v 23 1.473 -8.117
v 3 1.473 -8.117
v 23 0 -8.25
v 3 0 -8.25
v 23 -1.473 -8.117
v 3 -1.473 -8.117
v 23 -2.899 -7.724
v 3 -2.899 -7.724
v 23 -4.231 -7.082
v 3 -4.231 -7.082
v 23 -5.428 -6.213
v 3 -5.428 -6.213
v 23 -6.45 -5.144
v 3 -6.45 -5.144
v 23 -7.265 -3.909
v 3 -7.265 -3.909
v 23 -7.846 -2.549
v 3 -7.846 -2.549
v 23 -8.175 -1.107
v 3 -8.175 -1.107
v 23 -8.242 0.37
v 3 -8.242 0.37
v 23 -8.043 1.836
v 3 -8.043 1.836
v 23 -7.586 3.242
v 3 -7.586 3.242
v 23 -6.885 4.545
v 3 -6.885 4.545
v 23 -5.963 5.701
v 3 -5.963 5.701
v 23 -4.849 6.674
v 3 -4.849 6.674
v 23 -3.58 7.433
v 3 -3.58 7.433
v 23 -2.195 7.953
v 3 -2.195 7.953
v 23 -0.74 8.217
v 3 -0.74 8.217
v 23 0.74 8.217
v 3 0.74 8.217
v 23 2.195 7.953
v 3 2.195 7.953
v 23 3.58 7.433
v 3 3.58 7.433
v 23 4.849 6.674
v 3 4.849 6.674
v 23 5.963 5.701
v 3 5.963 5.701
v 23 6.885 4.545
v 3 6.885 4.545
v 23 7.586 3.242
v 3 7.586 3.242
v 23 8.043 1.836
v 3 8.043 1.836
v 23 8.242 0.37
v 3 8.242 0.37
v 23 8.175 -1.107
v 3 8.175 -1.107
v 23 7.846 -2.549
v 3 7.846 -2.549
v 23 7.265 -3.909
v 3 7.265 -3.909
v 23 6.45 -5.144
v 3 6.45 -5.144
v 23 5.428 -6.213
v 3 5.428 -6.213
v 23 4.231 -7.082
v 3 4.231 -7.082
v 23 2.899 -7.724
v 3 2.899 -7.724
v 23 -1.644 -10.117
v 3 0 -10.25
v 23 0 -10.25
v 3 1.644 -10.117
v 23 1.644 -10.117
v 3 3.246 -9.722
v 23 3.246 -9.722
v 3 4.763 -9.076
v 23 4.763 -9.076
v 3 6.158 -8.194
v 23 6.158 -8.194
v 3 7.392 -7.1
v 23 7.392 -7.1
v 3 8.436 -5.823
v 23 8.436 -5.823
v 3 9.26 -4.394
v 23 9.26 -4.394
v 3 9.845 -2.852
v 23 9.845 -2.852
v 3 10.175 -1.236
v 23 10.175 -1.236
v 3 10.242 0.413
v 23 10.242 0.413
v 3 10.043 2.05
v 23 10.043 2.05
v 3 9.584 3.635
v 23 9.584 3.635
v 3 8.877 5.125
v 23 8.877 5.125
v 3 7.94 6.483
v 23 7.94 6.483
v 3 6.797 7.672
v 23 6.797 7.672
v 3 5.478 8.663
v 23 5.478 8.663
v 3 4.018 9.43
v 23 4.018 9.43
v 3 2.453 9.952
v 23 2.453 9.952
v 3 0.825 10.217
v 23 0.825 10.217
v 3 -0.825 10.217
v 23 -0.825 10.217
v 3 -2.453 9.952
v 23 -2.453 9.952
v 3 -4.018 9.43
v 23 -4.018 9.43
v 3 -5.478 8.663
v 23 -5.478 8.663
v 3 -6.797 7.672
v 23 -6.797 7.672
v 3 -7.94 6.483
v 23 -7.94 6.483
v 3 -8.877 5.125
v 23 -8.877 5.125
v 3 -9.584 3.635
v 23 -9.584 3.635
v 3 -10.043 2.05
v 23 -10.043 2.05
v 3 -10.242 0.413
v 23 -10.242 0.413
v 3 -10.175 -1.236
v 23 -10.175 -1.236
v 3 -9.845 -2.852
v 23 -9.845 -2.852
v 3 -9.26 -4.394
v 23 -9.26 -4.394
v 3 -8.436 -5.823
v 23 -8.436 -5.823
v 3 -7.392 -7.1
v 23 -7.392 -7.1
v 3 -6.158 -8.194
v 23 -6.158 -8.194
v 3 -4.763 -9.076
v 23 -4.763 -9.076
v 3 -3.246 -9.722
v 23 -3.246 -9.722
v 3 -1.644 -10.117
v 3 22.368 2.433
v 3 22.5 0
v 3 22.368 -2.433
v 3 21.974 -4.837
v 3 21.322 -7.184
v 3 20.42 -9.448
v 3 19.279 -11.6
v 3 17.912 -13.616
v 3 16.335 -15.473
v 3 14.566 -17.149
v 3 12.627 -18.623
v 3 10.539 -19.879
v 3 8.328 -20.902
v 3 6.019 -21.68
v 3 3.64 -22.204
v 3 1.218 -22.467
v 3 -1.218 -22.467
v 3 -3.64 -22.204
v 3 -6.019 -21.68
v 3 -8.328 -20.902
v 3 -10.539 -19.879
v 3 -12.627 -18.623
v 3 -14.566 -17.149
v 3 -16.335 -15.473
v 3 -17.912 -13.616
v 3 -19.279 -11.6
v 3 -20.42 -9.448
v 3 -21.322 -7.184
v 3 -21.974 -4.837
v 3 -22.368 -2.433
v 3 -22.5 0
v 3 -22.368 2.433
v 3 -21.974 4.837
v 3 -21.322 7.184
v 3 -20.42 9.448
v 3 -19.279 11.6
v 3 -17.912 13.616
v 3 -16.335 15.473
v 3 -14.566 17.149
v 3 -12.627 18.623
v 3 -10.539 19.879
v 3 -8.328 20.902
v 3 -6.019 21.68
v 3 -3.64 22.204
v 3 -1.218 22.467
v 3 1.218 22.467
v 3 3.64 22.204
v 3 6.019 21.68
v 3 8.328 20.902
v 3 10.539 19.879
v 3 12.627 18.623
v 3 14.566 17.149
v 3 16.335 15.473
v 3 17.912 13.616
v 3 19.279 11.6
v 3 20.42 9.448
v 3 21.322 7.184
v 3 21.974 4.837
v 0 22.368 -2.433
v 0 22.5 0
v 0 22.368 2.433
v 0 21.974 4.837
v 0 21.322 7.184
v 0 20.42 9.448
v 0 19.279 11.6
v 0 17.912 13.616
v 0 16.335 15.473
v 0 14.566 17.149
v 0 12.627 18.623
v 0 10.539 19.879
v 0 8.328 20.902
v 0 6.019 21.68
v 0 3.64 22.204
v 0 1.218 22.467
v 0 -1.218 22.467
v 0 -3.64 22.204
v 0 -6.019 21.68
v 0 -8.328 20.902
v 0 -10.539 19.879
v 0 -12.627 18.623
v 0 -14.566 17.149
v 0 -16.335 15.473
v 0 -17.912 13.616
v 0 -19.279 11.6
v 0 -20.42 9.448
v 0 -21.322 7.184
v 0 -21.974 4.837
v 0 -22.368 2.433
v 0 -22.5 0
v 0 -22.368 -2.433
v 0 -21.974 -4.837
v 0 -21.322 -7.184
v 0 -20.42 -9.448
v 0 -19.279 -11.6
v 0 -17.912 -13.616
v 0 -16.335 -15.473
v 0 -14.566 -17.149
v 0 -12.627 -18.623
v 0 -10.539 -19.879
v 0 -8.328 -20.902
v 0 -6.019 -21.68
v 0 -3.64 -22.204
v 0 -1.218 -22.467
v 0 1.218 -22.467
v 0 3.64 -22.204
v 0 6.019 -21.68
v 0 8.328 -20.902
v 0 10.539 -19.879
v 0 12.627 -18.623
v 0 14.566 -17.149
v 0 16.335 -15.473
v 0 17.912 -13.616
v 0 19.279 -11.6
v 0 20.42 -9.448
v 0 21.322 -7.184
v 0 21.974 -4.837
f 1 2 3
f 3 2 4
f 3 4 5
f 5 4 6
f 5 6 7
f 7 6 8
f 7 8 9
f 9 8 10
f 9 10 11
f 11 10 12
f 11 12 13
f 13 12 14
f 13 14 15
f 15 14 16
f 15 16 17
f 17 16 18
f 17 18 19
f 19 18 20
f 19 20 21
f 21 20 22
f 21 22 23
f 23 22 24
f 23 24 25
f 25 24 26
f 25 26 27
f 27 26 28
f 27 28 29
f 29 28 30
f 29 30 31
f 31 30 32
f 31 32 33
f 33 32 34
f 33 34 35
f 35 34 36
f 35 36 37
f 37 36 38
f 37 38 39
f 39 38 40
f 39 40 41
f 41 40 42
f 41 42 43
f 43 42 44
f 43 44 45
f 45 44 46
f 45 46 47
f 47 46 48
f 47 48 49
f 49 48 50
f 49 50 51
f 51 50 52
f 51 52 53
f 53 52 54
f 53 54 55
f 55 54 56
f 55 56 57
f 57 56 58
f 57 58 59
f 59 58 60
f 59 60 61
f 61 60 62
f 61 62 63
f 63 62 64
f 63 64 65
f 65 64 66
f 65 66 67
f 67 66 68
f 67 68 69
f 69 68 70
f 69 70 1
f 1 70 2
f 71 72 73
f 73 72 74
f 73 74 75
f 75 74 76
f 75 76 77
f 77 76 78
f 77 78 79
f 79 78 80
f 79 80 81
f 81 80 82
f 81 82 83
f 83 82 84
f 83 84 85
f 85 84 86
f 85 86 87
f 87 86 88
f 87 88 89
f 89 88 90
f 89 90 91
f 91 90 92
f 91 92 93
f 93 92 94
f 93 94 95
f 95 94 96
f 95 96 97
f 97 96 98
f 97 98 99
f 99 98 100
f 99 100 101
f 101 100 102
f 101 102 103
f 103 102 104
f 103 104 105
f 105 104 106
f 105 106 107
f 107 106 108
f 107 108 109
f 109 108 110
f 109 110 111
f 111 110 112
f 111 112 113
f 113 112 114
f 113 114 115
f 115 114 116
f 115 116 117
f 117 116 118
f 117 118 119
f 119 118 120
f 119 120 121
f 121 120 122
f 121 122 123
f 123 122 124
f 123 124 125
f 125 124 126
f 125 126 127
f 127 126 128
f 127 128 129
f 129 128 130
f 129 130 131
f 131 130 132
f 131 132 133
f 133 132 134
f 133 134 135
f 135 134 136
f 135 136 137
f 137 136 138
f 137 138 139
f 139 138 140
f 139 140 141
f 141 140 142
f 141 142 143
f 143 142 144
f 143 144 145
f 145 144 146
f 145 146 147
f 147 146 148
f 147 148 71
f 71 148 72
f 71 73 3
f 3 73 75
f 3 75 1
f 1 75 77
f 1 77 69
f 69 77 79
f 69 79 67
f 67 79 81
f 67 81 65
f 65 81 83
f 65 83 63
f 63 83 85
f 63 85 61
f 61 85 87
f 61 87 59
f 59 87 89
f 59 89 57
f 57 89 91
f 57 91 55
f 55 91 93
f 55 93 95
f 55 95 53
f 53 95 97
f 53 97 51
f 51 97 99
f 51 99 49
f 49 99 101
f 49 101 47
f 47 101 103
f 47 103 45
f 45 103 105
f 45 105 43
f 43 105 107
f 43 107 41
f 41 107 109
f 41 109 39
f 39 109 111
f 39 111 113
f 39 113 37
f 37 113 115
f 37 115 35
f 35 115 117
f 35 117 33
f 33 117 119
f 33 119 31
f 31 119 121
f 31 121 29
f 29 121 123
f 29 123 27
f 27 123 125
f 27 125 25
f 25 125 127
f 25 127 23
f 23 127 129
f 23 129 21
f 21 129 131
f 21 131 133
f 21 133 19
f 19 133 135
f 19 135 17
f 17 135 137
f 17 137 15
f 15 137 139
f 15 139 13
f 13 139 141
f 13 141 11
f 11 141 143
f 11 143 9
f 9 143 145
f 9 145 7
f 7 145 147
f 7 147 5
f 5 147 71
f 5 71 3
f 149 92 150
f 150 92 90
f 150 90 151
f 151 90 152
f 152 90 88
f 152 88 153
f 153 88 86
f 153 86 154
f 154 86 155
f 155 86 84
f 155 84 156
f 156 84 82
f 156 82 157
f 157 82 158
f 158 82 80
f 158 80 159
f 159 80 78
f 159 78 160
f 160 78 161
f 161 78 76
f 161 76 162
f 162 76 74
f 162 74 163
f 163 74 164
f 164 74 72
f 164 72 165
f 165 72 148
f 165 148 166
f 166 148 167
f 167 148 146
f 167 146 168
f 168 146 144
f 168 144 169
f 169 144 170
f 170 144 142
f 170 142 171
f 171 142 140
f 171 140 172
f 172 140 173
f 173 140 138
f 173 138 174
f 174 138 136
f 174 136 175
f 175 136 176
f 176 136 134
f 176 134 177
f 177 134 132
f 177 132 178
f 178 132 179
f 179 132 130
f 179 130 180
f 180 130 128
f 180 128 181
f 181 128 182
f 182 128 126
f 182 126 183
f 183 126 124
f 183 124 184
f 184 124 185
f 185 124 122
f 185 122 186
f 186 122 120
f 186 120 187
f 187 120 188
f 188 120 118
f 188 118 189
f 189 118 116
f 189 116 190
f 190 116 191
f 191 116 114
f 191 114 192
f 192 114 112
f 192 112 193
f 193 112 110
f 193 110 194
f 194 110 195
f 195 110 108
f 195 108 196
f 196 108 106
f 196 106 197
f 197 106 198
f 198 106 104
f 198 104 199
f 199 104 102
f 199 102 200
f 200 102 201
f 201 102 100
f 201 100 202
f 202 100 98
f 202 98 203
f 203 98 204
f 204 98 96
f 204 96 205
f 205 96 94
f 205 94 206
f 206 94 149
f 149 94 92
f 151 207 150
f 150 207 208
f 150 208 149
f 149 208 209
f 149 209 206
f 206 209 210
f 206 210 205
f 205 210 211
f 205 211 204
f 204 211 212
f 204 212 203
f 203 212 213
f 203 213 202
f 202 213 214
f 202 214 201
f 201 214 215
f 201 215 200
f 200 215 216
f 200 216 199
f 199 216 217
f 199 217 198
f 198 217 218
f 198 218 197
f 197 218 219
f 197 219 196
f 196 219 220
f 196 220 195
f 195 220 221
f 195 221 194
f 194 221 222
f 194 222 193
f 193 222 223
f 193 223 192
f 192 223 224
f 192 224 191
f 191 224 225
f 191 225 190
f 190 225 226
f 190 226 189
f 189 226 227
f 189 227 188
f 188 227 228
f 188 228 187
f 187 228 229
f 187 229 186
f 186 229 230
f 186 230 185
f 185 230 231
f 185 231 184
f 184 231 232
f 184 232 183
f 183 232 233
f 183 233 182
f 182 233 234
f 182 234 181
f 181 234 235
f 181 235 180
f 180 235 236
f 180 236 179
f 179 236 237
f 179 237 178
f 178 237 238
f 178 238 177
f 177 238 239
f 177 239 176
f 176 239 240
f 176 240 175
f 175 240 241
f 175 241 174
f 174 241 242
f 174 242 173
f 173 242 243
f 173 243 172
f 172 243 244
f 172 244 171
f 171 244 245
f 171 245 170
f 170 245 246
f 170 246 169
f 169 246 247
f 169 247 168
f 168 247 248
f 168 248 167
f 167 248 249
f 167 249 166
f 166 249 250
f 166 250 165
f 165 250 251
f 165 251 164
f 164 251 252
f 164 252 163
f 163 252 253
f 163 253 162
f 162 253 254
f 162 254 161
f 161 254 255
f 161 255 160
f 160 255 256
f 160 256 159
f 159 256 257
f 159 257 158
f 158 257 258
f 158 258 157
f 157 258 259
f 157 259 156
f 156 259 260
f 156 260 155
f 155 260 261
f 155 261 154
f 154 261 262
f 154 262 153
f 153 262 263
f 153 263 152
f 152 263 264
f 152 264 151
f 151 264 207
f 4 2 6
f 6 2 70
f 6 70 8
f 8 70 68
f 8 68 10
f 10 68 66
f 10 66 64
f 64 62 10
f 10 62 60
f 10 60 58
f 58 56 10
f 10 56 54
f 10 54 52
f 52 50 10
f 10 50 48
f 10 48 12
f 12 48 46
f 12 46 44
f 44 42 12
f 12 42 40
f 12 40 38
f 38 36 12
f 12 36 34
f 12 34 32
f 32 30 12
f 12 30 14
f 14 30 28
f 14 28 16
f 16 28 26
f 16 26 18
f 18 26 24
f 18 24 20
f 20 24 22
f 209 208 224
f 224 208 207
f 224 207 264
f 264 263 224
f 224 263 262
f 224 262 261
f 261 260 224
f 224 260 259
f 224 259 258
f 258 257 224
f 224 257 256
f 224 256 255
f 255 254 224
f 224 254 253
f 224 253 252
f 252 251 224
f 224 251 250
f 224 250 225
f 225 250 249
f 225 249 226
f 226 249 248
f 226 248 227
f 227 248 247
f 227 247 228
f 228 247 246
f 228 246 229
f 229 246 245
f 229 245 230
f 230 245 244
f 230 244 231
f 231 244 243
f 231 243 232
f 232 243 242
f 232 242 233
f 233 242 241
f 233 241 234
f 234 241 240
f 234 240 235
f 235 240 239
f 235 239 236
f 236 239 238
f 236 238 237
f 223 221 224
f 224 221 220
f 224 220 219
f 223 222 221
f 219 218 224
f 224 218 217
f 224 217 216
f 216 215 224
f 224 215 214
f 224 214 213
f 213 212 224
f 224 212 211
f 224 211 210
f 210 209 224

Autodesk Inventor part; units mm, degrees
ref_plane "YZ Plane" through (0, 0, 0) normal (1, 0, 0) x (0, 1, 0)
ref_plane "XZ Plane" through (0, 0, 0) normal (0, 1, 0) x (-1, 0, 0)
ref_plane "XY Plane" through (0, 0, 0) normal (0, 0, 1) x (1, 0, 0)
sketch "Sketch1" plane through (0, 0, 0) normal (1, 0, 0) x (0, 1, 0)
  circle A0 centre (0, 0) radius 22.5
  dimension "d0" = 45
extrude "Extrusion1" add sketch "Sketch1" along normal blind 3
sketch "Sketch2" plane through (3, 0, 0) normal (1, 0, 0) x (0, 0, -1)
  circle A0 centre (0, 0) radius 10.25
  circle A1 centre (0, 0) radius 8.25
  dimension "d3" = 20.5
  dimension "d4" = 16.5
extrude "Extrusion2" add sketch "Sketch2" along normal blind 20
properties part number "Leg EndCap - ForPoolNoodle" material "ABS Plastic"
